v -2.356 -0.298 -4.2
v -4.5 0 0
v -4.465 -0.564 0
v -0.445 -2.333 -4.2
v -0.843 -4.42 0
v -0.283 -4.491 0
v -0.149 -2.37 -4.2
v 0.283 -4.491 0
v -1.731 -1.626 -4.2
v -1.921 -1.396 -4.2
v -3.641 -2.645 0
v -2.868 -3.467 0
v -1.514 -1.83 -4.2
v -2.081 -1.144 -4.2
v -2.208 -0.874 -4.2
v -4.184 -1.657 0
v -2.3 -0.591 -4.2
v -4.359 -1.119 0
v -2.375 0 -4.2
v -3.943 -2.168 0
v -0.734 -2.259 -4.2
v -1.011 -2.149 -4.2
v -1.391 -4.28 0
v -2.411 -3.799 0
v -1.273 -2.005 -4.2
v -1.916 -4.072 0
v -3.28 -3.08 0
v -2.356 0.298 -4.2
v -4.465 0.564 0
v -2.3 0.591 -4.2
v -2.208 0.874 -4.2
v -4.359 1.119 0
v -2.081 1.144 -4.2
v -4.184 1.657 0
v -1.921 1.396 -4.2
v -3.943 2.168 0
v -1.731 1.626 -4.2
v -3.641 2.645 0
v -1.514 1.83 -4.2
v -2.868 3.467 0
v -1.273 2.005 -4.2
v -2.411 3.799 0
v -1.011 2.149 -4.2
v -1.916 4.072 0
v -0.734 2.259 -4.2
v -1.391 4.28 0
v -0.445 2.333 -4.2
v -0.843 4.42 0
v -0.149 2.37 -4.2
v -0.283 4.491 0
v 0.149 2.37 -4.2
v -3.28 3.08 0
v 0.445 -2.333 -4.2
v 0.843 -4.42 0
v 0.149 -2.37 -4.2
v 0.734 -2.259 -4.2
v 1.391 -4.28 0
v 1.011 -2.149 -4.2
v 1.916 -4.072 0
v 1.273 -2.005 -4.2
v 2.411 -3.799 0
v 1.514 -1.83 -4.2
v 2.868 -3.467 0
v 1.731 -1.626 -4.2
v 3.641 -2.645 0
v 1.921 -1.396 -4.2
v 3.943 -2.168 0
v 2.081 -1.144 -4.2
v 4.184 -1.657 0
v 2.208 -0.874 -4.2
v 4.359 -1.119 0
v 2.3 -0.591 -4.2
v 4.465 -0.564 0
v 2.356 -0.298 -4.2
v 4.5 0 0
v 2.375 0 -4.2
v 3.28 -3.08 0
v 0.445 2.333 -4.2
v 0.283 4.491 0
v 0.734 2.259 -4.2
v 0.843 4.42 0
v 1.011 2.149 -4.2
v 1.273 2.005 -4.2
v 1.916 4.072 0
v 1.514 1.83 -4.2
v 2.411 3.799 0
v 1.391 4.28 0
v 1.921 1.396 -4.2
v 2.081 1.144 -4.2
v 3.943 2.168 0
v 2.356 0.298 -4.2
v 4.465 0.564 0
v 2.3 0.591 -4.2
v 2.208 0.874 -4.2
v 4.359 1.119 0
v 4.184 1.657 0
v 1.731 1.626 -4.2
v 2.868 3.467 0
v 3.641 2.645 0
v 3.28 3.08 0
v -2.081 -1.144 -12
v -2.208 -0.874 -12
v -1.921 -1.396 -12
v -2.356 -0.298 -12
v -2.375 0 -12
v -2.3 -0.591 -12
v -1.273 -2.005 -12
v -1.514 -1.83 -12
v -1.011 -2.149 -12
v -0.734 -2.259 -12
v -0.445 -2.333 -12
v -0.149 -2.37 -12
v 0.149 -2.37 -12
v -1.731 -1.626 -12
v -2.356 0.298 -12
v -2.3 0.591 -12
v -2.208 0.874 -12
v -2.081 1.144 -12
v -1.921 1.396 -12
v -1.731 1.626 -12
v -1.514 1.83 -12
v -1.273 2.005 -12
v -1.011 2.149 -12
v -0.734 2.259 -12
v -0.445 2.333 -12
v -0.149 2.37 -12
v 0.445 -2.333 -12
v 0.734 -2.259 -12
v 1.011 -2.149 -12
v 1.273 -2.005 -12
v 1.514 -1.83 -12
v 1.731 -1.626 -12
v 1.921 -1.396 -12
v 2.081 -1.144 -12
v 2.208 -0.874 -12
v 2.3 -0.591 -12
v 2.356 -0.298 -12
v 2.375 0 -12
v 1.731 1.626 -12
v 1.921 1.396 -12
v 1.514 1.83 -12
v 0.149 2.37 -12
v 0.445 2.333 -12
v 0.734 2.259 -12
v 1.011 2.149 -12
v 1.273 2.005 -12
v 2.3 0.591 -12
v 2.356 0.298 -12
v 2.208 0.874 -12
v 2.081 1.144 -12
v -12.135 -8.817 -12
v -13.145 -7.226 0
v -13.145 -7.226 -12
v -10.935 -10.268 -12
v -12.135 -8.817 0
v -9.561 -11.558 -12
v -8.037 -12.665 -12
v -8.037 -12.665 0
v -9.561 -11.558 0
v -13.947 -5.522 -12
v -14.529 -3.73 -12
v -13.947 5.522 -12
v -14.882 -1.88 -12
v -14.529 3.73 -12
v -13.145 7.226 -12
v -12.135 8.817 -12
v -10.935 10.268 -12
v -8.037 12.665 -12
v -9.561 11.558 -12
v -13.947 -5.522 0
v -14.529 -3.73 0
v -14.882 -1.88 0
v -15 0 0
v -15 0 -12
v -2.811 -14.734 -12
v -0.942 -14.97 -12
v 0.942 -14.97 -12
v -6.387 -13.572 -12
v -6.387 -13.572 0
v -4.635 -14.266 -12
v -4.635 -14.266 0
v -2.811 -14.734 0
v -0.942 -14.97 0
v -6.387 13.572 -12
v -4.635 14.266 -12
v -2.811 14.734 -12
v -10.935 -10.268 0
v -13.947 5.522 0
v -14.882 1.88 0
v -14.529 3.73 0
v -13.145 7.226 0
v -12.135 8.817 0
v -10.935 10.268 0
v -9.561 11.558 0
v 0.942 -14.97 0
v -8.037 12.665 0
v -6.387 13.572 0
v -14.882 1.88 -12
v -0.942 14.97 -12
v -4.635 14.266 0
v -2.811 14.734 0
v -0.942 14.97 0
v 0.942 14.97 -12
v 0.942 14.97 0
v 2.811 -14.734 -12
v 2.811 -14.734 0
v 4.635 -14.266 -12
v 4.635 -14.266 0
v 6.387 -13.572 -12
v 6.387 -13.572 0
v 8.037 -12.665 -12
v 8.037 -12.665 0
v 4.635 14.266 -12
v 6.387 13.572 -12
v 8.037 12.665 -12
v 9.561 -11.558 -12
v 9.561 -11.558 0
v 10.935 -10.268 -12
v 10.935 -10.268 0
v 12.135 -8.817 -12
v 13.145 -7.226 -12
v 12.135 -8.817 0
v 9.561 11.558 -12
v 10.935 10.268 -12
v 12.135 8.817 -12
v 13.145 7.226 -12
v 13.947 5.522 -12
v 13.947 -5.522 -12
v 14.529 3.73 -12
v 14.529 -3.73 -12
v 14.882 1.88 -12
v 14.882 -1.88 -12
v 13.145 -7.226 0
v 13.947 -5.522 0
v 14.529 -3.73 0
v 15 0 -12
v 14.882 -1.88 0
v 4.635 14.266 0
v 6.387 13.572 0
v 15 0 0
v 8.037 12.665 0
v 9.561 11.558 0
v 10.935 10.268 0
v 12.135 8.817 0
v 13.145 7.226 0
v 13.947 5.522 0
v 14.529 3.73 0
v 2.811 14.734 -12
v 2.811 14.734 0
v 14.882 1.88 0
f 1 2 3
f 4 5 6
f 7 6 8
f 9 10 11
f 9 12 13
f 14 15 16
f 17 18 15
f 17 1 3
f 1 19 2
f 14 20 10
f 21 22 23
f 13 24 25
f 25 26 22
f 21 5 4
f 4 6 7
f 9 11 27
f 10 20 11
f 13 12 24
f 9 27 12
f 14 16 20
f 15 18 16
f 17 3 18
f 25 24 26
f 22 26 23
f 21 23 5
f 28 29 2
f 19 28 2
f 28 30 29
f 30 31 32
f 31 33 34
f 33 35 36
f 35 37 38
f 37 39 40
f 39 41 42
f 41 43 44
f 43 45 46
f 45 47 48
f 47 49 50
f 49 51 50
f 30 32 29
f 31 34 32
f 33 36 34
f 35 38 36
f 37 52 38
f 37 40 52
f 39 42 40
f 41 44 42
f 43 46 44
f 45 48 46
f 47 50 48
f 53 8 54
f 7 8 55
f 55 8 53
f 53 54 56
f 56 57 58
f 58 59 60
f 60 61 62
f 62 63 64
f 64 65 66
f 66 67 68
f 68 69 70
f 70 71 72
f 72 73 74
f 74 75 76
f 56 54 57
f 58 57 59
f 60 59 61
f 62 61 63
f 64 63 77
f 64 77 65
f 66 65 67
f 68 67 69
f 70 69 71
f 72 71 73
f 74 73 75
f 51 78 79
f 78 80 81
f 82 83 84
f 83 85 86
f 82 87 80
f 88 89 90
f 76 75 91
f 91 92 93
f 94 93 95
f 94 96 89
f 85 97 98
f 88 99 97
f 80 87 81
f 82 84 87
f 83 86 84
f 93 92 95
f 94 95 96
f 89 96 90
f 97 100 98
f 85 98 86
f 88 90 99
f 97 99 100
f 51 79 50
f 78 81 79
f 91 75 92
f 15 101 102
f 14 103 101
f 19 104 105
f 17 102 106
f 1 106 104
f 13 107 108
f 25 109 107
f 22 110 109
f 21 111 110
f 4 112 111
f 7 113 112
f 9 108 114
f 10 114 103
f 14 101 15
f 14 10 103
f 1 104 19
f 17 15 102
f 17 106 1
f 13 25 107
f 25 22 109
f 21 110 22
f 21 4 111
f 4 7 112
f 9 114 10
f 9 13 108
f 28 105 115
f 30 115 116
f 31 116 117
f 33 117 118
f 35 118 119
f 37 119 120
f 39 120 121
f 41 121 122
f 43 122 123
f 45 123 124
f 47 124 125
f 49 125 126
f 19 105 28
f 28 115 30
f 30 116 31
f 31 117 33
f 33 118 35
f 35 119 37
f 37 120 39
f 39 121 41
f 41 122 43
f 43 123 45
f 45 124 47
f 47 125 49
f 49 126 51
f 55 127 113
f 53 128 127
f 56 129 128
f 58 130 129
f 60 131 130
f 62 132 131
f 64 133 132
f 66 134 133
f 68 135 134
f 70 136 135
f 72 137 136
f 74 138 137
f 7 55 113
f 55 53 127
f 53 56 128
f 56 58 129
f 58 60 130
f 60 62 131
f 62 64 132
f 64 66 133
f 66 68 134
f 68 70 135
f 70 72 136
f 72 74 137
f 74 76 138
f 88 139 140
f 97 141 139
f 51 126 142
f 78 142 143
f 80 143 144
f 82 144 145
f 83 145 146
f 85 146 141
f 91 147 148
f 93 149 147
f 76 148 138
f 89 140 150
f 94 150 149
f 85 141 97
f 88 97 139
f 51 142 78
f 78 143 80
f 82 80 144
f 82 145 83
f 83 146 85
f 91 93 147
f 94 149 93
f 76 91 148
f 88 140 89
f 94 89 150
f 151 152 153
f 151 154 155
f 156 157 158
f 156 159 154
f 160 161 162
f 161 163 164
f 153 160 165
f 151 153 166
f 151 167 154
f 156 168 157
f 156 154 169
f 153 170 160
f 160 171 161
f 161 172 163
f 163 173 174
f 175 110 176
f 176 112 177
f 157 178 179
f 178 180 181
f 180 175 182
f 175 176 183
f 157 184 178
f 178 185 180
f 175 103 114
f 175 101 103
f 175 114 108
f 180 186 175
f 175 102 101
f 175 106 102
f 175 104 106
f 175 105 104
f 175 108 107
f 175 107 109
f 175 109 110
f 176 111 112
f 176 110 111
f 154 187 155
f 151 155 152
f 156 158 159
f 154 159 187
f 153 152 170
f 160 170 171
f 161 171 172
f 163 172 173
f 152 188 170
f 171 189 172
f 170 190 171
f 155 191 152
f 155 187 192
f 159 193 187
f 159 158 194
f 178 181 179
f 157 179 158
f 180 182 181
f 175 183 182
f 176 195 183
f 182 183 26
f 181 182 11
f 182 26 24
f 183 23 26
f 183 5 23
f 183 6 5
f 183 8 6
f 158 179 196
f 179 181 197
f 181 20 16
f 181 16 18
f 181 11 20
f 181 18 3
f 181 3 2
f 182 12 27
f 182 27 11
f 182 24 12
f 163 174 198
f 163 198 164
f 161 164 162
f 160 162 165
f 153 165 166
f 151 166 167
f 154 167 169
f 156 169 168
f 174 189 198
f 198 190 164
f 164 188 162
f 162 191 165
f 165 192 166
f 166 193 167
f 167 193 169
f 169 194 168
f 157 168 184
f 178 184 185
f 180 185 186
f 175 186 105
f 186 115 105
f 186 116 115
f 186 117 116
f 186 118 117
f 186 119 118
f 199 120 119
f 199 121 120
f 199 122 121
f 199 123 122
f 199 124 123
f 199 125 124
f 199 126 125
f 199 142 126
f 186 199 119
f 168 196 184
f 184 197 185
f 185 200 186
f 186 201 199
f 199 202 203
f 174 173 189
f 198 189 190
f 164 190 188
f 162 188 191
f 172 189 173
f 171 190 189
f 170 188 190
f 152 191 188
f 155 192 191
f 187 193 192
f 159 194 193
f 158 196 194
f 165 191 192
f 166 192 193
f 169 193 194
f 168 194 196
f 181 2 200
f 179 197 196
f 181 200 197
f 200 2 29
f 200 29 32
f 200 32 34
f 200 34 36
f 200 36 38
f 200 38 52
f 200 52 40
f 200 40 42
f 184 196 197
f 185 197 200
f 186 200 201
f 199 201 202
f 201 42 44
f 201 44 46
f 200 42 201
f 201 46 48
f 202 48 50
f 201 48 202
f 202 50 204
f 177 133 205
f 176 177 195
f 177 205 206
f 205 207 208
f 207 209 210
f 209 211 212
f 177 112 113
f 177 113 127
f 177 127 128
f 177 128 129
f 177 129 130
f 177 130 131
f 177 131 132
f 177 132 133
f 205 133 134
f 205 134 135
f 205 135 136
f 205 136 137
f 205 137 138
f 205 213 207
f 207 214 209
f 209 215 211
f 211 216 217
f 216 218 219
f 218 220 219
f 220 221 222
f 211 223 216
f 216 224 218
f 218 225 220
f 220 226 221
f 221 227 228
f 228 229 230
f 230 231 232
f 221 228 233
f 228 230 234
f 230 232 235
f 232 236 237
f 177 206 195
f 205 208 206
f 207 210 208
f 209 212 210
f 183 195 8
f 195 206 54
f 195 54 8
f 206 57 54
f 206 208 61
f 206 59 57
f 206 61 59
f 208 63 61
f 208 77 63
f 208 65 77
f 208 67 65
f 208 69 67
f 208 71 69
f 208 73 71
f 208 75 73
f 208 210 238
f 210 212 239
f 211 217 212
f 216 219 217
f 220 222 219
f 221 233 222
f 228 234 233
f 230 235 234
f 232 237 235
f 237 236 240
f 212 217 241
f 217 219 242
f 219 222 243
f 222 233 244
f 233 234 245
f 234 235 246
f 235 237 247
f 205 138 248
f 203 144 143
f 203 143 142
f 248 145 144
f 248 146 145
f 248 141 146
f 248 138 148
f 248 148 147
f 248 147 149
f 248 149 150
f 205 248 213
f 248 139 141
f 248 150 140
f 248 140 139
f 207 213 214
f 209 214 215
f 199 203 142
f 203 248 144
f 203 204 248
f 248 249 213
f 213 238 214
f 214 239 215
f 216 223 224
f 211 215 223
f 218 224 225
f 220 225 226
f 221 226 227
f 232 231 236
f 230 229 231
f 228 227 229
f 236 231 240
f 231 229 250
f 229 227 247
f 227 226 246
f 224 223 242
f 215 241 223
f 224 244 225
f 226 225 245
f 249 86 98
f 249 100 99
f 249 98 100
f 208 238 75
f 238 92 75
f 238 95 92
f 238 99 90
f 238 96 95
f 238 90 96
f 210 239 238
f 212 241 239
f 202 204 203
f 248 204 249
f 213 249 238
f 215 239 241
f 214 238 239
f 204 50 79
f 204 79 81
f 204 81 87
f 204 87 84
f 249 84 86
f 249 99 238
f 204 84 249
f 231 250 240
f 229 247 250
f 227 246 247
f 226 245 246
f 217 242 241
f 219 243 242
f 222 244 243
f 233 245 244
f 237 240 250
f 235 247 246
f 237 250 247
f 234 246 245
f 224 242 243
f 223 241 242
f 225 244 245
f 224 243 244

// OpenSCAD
$fn = 50;

difference() {
	union() {
		translate(v = [0, 0, -12.0]) {
			cylinder(h = 12, r = 15.0);
		}
	}
	union() {
		translate(v = [0, 0, 0]) {
			rotate(a = [0, 0, 0]) {
				difference() {
					union() {
						translate(v = [0, 0, -15.0]) {
							cylinder(h = 15, r = 2.25);
						}
						translate(v = [0, 0, -4.2]) {
							cylinder(h = 4.2, r1 = 2.375, r2 = 4.5);
						}
						translate(v = [0, 0, -15.0]) {
							cylinder(h = 15, r = 2.375);
						}
						translate(v = [0, 0, -15.0]) {
							cylinder(h = 15, r = 2.25);
						}
					}
					union();
				}
			}
		}
	}
}
